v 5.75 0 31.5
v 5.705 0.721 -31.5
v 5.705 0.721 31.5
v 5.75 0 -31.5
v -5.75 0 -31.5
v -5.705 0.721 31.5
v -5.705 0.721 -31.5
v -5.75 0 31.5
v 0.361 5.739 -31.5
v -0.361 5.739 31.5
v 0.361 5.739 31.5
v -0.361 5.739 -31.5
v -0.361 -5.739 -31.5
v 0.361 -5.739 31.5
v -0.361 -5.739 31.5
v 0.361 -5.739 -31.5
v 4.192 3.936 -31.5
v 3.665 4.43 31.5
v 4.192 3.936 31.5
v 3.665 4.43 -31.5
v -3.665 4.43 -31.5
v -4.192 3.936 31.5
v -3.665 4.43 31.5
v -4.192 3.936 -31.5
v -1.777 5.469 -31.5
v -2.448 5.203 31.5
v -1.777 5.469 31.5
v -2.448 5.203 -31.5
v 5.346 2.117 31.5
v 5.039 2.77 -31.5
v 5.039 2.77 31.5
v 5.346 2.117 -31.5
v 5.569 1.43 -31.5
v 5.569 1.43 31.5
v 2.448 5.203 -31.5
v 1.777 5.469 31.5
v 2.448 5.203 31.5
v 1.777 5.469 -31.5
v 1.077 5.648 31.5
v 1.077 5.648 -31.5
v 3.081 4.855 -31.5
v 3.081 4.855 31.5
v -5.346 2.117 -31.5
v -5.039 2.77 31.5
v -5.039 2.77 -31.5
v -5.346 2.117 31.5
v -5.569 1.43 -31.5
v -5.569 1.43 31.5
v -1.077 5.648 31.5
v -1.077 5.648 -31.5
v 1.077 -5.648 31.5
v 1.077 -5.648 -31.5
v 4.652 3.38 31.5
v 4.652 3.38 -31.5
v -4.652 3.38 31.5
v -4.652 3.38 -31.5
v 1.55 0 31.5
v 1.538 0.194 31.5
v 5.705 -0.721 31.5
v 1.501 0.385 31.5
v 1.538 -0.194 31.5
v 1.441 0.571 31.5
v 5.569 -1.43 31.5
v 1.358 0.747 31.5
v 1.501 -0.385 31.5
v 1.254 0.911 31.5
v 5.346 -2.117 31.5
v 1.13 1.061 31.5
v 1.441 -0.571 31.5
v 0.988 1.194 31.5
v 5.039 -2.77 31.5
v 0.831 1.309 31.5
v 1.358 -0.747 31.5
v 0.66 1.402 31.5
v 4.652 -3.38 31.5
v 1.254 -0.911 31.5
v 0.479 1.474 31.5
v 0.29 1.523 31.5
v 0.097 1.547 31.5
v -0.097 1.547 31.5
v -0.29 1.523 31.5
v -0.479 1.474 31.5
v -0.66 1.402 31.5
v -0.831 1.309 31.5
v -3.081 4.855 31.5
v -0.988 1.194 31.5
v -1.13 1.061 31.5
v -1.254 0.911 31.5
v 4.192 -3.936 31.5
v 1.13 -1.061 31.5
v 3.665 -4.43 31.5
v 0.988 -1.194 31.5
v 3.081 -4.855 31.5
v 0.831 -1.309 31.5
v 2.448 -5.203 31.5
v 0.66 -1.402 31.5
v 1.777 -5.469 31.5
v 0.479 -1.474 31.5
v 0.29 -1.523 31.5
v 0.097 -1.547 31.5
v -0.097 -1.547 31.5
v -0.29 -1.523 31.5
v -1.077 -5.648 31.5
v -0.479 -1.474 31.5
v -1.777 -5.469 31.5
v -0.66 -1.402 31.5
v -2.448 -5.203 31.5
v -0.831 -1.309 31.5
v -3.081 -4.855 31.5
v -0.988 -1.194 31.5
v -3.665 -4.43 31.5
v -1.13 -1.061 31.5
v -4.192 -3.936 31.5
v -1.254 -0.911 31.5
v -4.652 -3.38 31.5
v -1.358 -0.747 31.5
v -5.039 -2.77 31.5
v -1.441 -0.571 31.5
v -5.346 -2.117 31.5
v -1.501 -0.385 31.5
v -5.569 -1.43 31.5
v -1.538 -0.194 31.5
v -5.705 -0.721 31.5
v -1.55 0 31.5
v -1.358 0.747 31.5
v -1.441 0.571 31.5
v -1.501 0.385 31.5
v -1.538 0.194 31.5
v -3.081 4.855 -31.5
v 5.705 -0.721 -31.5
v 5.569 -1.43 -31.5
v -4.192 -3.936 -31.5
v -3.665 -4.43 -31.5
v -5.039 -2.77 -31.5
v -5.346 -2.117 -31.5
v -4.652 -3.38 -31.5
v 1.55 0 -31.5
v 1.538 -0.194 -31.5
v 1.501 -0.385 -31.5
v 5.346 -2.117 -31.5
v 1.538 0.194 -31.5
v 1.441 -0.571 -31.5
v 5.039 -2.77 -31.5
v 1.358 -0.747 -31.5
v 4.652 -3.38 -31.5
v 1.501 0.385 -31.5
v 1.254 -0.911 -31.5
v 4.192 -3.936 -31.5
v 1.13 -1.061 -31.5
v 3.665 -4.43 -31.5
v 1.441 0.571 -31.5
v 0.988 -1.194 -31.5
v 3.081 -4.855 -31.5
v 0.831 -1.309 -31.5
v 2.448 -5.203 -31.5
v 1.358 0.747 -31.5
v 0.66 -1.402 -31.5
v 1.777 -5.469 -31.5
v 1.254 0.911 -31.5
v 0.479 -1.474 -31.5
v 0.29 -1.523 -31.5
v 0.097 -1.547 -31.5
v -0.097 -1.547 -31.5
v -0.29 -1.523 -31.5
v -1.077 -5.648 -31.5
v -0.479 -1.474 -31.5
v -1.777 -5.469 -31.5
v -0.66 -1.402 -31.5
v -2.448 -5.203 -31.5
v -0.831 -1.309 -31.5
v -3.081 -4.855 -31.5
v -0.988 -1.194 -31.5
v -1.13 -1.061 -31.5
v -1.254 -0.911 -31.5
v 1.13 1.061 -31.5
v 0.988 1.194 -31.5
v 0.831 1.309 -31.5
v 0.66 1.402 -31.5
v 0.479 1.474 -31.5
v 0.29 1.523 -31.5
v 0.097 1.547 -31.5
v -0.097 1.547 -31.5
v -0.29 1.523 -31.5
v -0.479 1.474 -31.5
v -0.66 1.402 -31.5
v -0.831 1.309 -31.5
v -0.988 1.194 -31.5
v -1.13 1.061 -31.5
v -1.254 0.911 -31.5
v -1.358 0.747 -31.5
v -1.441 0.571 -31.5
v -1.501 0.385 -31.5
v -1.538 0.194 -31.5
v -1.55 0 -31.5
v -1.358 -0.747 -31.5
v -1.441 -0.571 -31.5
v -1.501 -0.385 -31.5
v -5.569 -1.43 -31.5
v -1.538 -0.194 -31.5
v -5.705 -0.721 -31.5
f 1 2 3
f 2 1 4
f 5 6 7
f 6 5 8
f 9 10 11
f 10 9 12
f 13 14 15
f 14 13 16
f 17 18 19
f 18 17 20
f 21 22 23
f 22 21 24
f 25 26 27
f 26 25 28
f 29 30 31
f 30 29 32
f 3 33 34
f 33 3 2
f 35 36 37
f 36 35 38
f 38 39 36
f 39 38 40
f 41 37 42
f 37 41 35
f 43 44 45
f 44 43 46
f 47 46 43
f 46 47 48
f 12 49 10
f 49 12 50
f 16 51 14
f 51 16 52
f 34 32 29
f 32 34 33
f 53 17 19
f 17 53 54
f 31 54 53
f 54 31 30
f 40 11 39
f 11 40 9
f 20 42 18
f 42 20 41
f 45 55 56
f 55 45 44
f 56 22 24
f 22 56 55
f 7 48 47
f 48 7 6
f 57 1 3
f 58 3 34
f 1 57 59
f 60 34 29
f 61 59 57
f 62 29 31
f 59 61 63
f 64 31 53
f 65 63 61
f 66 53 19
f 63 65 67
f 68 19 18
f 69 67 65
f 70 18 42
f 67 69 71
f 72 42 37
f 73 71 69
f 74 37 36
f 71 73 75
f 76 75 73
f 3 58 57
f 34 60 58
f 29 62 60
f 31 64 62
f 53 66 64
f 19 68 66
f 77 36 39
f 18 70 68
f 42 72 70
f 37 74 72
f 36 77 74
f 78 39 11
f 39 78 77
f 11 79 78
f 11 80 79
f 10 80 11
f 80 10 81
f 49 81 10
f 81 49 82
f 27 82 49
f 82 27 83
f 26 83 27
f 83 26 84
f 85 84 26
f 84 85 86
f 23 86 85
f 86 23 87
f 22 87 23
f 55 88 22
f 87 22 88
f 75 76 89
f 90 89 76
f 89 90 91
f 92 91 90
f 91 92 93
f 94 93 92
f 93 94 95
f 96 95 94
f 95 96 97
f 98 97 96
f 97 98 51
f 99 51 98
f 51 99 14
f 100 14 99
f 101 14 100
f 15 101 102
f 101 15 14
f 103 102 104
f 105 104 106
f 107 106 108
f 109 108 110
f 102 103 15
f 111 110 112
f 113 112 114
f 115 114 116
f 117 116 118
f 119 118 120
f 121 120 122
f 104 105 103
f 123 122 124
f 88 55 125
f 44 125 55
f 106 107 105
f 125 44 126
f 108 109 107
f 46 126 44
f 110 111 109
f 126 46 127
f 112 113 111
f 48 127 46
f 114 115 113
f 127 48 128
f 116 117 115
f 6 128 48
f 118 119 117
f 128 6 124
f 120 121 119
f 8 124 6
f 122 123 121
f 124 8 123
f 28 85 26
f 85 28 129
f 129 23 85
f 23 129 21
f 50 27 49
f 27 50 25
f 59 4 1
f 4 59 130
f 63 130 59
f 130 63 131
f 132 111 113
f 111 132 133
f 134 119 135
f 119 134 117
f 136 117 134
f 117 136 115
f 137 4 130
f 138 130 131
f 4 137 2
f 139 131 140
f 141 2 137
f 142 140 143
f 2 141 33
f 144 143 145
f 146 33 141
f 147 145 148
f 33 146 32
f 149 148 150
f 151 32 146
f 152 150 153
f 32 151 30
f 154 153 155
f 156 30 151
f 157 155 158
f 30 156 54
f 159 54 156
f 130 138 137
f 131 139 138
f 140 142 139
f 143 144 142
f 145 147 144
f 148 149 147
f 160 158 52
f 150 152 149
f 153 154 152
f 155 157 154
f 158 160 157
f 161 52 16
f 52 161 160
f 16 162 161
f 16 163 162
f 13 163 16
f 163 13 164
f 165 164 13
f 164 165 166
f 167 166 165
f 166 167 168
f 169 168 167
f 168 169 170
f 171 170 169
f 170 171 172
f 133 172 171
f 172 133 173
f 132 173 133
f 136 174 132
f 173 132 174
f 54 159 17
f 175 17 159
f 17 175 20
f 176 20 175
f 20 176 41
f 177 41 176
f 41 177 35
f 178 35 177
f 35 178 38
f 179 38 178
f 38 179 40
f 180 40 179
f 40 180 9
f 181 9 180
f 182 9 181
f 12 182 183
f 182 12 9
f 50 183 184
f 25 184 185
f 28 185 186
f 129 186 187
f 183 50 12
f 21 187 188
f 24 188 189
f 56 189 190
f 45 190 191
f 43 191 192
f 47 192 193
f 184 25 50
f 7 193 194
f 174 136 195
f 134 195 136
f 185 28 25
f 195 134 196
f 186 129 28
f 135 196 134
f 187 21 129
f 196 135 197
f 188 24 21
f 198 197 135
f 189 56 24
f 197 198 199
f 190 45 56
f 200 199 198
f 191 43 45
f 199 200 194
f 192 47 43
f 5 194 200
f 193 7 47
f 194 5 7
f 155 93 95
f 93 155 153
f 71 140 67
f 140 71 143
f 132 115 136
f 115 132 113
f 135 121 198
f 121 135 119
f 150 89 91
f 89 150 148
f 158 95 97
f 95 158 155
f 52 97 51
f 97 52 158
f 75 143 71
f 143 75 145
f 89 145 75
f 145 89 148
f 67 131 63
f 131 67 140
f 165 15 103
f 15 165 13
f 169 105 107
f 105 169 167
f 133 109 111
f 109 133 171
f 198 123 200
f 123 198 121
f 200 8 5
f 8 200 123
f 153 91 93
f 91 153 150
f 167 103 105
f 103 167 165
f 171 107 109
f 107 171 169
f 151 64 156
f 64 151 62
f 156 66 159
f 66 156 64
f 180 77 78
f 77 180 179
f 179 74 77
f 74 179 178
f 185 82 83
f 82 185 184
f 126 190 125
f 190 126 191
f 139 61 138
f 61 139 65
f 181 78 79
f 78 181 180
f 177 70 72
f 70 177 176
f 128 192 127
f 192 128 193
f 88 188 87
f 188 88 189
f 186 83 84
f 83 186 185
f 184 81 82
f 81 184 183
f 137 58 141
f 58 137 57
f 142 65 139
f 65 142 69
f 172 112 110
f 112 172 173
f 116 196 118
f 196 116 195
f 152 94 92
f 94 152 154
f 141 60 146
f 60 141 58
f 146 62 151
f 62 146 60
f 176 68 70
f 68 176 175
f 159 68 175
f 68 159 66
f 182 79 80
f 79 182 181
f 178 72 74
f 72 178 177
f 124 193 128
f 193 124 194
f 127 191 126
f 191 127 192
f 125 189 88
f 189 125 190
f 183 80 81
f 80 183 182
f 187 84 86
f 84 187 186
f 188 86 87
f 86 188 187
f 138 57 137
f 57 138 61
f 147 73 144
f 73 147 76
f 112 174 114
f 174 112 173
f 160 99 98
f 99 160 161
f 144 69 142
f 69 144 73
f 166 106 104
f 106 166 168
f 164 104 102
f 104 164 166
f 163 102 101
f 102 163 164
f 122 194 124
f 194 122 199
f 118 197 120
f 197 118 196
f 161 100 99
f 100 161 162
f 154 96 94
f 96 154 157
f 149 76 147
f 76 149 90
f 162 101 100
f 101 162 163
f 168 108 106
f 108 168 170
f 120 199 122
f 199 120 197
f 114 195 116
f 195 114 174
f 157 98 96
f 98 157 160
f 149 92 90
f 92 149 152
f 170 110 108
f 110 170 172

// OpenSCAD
$fn = 50;


difference() {
	union() {
		translate(v = [0, 0, -31.5000000000]) {
			cylinder(h = 63, r = 5.7500000000);
		}
	}
	union() {
		translate(v = [0, 0, -100.0000000000]) {
			cylinder(h = 200, r = 1.5500000000);
		}
	}
}
